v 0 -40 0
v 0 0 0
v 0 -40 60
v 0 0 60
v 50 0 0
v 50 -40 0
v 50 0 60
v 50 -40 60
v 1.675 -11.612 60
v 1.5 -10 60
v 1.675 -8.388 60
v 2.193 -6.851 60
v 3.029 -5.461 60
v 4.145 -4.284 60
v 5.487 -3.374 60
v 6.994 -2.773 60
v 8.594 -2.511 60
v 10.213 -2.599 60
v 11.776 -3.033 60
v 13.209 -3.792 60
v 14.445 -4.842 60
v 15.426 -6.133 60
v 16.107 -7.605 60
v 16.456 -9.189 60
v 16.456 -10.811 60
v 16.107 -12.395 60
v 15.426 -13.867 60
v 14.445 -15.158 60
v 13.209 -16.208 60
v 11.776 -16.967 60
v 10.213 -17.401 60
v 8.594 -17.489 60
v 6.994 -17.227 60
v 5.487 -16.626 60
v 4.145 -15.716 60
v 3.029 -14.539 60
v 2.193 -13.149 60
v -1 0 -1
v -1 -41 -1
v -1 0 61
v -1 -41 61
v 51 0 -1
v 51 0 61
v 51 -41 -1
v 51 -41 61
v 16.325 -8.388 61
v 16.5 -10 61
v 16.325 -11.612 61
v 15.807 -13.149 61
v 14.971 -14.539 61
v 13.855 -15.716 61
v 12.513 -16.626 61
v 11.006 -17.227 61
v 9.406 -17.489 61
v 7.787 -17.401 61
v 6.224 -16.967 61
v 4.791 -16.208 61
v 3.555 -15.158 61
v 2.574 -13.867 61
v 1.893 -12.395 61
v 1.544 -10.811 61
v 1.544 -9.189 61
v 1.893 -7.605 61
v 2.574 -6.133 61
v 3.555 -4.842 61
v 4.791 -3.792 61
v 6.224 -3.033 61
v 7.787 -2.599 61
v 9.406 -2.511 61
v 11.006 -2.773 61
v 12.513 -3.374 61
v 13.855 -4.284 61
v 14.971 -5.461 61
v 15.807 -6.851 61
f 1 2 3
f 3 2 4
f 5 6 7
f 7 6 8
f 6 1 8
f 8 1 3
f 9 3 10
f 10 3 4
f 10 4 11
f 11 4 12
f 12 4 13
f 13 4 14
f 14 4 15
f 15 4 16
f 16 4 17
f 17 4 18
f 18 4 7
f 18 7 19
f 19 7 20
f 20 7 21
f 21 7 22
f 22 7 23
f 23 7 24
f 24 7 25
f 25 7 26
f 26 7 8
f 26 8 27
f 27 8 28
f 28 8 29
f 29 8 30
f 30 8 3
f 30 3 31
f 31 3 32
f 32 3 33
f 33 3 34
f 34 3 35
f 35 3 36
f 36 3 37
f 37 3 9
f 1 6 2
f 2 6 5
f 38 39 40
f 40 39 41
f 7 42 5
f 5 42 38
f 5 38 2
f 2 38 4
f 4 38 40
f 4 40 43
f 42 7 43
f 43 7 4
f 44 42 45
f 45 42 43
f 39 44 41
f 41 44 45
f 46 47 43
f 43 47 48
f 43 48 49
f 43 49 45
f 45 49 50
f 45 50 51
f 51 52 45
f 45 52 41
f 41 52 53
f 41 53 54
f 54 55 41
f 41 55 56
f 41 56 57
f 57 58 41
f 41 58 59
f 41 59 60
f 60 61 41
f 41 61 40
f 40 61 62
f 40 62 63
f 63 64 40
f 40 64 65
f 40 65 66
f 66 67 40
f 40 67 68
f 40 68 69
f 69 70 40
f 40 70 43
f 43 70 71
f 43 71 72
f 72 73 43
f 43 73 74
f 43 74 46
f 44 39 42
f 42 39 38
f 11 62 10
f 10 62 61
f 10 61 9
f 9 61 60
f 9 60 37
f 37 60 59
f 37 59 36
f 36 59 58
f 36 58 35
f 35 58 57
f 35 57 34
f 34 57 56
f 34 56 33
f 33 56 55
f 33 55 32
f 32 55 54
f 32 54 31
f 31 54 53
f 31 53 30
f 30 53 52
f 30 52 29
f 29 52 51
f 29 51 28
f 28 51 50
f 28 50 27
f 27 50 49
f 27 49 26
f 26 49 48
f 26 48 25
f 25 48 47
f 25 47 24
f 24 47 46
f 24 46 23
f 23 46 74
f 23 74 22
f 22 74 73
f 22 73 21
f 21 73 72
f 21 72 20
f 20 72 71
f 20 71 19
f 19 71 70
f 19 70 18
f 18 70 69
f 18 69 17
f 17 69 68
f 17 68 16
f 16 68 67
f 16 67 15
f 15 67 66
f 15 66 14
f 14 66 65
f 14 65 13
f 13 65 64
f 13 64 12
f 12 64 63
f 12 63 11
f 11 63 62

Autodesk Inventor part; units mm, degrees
ref_plane "YZ Plane" through (0, 0, 0) normal (1, 0, 0) x (0, 1, 0)
ref_plane "XZ Plane" through (0, 0, 0) normal (0, 1, 0) x (-1, 0, 0)
ref_plane "XY Plane" through (0, 0, 0) normal (0, 0, 1) x (1, 0, 0)
sketch "Sketch1" plane through (0, 0, 0) normal (0, 0, 1) x (1, 0, 0)
  line L0 (0, 0) -> (50, 0)
  line L1 (50, 0) -> (50, -40)
  line L2 (50, -40) -> (0, -40)
  line L3 (0, -40) -> (0, 0)
  dimension "d0" = 50
  dimension "d1" = 40
extrude "Extrusion1" add sketch "Sketch1" along normal blind 60
shell "Shell1" thickness 1 outward yes removed faces 1 at (33.3333, 0, 20)
sketch "Sketch2" plane through (0, 0, 61) normal (0, 0, 1) x (1, 0, 0)
  circle A0 centre (9, -10) radius 7.5
  line L0 (51, 0) -> (-1, 0) projected
  line L1 (-1, 0) -> (-1, -41) projected
  point P0 (0, 0)
  dimension "d5" = 10
  dimension "d6" = 10
  dimension "d7" = 15
extrude "Extrusion2" cut sketch "Sketch2" against normal blind 60
properties part number "Part4 zaid"
